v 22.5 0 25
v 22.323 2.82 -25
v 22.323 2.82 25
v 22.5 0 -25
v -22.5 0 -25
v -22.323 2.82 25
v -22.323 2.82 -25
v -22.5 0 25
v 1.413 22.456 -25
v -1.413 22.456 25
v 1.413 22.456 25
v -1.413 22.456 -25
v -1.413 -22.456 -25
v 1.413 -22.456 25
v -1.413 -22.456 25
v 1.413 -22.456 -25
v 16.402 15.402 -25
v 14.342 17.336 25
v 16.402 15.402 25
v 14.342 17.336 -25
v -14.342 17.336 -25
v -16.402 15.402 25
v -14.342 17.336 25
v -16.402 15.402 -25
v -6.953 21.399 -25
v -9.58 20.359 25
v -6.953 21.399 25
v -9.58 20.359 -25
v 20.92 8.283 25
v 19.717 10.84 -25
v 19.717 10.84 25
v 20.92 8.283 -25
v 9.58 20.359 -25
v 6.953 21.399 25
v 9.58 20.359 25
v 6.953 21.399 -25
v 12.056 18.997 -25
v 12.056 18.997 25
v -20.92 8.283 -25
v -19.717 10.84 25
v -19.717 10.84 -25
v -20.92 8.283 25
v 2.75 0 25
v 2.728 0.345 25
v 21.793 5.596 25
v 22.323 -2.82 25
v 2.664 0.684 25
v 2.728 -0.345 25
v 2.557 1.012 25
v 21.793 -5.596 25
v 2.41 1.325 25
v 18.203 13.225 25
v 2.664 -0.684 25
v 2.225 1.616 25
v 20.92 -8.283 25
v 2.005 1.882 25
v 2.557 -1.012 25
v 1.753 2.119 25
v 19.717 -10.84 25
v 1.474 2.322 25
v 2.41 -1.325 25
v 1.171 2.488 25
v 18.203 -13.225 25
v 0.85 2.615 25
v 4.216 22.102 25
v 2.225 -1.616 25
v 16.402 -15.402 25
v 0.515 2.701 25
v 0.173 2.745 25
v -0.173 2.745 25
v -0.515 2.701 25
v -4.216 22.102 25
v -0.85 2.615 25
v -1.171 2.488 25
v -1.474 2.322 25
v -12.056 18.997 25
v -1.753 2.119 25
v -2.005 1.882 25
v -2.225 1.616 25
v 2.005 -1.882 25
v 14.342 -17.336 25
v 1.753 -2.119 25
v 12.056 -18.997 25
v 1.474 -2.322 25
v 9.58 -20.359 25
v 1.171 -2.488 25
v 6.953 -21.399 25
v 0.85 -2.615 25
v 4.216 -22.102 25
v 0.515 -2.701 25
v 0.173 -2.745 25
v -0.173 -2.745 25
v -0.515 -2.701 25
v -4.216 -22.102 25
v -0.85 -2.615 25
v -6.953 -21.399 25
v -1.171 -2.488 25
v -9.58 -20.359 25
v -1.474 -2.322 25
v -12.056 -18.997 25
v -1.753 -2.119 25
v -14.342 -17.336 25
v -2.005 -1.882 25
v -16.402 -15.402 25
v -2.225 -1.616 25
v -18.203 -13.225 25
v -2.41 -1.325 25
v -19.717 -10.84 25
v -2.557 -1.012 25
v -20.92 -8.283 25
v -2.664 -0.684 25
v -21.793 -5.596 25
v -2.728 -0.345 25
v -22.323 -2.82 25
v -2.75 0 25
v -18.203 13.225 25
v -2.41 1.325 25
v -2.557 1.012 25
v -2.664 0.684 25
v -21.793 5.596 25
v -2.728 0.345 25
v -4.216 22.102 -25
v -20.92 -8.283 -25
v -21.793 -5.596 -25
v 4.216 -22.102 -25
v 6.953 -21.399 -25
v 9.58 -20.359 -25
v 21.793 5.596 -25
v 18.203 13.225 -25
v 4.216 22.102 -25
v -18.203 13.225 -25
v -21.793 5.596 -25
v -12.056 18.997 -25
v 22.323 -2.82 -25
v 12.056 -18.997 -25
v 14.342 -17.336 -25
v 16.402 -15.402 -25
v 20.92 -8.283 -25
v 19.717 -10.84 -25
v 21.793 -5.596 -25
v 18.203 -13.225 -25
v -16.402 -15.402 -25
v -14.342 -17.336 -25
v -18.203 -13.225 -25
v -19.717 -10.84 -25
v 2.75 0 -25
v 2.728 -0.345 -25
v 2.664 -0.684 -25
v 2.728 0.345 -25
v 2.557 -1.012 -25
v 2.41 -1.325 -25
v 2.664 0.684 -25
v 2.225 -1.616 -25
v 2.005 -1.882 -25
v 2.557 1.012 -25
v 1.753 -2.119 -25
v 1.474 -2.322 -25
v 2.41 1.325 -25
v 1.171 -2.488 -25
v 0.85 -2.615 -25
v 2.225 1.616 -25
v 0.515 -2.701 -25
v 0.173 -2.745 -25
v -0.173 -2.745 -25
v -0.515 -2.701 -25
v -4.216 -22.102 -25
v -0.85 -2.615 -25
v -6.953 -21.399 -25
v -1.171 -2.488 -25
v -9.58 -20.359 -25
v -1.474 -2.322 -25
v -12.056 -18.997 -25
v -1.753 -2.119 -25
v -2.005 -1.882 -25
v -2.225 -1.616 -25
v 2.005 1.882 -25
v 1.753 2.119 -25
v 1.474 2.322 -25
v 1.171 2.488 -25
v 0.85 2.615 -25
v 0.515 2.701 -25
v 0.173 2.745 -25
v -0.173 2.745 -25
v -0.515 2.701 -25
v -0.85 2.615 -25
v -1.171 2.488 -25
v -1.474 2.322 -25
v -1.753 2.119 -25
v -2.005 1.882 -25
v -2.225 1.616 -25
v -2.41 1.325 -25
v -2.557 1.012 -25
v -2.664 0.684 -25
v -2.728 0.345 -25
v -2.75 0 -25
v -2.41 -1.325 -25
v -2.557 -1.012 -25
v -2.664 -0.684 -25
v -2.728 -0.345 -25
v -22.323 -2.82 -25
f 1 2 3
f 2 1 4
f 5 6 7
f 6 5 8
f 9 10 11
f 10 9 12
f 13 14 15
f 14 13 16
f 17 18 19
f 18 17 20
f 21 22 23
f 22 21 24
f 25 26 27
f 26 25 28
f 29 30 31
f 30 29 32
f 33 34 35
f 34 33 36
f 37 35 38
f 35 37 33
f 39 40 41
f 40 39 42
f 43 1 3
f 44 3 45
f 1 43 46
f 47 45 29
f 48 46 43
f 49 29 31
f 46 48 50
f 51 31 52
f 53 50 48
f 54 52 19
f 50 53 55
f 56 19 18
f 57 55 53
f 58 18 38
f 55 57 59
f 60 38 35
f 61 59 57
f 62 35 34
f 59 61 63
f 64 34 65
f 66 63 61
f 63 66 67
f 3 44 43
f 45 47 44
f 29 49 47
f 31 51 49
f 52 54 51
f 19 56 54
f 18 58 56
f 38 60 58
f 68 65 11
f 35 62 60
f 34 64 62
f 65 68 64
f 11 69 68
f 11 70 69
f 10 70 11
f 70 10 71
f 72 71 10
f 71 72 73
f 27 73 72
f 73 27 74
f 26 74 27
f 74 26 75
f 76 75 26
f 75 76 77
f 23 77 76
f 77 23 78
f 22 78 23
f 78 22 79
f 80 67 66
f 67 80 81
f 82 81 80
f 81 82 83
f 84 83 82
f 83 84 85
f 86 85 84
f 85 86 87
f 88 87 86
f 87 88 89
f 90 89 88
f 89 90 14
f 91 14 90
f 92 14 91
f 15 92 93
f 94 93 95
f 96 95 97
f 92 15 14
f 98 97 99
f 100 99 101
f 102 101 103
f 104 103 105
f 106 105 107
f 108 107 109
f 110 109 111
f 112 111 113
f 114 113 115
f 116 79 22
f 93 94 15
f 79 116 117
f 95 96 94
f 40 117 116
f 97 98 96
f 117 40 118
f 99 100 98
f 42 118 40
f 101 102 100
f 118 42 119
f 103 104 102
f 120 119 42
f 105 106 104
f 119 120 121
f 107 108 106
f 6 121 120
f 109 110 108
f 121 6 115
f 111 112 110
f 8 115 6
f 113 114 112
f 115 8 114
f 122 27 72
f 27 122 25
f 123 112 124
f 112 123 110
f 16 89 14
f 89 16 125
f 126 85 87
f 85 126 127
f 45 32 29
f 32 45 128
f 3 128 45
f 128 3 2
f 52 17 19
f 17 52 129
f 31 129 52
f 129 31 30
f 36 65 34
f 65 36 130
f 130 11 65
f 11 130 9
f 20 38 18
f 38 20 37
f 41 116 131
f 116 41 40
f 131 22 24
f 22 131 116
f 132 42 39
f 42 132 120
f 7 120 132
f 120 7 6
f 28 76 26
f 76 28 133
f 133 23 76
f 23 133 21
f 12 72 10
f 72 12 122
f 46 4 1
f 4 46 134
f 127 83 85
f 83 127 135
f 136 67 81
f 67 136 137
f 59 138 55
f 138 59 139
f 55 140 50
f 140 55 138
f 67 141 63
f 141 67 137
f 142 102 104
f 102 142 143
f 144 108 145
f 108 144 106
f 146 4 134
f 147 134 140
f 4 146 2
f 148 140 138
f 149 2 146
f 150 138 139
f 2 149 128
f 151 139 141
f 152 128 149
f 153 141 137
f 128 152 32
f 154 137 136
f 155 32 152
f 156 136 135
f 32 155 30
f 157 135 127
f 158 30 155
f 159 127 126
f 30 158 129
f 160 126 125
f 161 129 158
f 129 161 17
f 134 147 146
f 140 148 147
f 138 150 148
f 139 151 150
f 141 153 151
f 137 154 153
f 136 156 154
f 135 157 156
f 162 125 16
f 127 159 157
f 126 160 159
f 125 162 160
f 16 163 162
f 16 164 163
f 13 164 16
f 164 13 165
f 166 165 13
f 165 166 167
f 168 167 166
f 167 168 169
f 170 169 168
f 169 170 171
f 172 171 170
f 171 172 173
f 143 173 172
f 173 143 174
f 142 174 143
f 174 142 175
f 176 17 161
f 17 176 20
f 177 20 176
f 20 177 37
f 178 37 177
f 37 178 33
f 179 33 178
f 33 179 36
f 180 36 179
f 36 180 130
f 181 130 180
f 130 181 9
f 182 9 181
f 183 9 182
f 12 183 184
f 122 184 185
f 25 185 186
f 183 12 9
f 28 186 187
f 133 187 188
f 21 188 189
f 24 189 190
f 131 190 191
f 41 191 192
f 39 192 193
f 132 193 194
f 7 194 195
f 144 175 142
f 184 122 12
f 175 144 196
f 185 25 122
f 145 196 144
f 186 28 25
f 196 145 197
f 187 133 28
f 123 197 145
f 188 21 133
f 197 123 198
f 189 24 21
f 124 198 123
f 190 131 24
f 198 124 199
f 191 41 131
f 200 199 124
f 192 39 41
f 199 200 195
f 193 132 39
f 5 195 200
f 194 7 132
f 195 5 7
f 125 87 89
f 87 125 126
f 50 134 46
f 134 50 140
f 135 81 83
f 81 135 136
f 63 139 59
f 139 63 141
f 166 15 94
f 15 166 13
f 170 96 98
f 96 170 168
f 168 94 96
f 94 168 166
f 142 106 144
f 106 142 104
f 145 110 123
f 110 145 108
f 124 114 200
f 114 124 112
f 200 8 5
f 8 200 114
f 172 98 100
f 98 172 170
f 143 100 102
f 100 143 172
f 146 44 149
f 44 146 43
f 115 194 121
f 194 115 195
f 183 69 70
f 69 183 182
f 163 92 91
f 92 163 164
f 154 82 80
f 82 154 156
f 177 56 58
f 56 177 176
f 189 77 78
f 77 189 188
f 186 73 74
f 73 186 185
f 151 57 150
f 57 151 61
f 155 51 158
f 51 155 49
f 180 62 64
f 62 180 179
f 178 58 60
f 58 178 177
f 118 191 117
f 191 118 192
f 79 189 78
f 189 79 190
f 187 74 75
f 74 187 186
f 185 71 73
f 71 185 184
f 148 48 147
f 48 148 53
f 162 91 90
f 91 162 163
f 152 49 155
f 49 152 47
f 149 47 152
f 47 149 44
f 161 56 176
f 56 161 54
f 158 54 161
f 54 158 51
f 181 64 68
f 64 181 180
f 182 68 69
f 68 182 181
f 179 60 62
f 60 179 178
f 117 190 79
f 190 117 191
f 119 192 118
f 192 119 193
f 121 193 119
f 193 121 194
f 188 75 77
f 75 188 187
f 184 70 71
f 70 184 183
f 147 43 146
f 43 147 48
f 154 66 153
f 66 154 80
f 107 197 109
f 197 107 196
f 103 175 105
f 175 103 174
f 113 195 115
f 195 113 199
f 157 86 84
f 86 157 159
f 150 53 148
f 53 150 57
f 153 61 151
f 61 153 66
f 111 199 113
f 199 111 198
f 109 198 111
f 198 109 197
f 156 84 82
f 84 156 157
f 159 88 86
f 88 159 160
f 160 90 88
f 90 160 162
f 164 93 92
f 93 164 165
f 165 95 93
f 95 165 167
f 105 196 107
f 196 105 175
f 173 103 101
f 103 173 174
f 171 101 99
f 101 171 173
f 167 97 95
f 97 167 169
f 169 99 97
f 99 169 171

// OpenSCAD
$fn = 50;


difference() {
	union() {
		translate(v = [0, 0, -25.0000000000]) {
			cylinder(h = 50, r = 22.5000000000);
		}
	}
	union() {
		translate(v = [0, 0, -100.0000000000]) {
			cylinder(h = 200, r = 2.7500000000);
		}
	}
}
